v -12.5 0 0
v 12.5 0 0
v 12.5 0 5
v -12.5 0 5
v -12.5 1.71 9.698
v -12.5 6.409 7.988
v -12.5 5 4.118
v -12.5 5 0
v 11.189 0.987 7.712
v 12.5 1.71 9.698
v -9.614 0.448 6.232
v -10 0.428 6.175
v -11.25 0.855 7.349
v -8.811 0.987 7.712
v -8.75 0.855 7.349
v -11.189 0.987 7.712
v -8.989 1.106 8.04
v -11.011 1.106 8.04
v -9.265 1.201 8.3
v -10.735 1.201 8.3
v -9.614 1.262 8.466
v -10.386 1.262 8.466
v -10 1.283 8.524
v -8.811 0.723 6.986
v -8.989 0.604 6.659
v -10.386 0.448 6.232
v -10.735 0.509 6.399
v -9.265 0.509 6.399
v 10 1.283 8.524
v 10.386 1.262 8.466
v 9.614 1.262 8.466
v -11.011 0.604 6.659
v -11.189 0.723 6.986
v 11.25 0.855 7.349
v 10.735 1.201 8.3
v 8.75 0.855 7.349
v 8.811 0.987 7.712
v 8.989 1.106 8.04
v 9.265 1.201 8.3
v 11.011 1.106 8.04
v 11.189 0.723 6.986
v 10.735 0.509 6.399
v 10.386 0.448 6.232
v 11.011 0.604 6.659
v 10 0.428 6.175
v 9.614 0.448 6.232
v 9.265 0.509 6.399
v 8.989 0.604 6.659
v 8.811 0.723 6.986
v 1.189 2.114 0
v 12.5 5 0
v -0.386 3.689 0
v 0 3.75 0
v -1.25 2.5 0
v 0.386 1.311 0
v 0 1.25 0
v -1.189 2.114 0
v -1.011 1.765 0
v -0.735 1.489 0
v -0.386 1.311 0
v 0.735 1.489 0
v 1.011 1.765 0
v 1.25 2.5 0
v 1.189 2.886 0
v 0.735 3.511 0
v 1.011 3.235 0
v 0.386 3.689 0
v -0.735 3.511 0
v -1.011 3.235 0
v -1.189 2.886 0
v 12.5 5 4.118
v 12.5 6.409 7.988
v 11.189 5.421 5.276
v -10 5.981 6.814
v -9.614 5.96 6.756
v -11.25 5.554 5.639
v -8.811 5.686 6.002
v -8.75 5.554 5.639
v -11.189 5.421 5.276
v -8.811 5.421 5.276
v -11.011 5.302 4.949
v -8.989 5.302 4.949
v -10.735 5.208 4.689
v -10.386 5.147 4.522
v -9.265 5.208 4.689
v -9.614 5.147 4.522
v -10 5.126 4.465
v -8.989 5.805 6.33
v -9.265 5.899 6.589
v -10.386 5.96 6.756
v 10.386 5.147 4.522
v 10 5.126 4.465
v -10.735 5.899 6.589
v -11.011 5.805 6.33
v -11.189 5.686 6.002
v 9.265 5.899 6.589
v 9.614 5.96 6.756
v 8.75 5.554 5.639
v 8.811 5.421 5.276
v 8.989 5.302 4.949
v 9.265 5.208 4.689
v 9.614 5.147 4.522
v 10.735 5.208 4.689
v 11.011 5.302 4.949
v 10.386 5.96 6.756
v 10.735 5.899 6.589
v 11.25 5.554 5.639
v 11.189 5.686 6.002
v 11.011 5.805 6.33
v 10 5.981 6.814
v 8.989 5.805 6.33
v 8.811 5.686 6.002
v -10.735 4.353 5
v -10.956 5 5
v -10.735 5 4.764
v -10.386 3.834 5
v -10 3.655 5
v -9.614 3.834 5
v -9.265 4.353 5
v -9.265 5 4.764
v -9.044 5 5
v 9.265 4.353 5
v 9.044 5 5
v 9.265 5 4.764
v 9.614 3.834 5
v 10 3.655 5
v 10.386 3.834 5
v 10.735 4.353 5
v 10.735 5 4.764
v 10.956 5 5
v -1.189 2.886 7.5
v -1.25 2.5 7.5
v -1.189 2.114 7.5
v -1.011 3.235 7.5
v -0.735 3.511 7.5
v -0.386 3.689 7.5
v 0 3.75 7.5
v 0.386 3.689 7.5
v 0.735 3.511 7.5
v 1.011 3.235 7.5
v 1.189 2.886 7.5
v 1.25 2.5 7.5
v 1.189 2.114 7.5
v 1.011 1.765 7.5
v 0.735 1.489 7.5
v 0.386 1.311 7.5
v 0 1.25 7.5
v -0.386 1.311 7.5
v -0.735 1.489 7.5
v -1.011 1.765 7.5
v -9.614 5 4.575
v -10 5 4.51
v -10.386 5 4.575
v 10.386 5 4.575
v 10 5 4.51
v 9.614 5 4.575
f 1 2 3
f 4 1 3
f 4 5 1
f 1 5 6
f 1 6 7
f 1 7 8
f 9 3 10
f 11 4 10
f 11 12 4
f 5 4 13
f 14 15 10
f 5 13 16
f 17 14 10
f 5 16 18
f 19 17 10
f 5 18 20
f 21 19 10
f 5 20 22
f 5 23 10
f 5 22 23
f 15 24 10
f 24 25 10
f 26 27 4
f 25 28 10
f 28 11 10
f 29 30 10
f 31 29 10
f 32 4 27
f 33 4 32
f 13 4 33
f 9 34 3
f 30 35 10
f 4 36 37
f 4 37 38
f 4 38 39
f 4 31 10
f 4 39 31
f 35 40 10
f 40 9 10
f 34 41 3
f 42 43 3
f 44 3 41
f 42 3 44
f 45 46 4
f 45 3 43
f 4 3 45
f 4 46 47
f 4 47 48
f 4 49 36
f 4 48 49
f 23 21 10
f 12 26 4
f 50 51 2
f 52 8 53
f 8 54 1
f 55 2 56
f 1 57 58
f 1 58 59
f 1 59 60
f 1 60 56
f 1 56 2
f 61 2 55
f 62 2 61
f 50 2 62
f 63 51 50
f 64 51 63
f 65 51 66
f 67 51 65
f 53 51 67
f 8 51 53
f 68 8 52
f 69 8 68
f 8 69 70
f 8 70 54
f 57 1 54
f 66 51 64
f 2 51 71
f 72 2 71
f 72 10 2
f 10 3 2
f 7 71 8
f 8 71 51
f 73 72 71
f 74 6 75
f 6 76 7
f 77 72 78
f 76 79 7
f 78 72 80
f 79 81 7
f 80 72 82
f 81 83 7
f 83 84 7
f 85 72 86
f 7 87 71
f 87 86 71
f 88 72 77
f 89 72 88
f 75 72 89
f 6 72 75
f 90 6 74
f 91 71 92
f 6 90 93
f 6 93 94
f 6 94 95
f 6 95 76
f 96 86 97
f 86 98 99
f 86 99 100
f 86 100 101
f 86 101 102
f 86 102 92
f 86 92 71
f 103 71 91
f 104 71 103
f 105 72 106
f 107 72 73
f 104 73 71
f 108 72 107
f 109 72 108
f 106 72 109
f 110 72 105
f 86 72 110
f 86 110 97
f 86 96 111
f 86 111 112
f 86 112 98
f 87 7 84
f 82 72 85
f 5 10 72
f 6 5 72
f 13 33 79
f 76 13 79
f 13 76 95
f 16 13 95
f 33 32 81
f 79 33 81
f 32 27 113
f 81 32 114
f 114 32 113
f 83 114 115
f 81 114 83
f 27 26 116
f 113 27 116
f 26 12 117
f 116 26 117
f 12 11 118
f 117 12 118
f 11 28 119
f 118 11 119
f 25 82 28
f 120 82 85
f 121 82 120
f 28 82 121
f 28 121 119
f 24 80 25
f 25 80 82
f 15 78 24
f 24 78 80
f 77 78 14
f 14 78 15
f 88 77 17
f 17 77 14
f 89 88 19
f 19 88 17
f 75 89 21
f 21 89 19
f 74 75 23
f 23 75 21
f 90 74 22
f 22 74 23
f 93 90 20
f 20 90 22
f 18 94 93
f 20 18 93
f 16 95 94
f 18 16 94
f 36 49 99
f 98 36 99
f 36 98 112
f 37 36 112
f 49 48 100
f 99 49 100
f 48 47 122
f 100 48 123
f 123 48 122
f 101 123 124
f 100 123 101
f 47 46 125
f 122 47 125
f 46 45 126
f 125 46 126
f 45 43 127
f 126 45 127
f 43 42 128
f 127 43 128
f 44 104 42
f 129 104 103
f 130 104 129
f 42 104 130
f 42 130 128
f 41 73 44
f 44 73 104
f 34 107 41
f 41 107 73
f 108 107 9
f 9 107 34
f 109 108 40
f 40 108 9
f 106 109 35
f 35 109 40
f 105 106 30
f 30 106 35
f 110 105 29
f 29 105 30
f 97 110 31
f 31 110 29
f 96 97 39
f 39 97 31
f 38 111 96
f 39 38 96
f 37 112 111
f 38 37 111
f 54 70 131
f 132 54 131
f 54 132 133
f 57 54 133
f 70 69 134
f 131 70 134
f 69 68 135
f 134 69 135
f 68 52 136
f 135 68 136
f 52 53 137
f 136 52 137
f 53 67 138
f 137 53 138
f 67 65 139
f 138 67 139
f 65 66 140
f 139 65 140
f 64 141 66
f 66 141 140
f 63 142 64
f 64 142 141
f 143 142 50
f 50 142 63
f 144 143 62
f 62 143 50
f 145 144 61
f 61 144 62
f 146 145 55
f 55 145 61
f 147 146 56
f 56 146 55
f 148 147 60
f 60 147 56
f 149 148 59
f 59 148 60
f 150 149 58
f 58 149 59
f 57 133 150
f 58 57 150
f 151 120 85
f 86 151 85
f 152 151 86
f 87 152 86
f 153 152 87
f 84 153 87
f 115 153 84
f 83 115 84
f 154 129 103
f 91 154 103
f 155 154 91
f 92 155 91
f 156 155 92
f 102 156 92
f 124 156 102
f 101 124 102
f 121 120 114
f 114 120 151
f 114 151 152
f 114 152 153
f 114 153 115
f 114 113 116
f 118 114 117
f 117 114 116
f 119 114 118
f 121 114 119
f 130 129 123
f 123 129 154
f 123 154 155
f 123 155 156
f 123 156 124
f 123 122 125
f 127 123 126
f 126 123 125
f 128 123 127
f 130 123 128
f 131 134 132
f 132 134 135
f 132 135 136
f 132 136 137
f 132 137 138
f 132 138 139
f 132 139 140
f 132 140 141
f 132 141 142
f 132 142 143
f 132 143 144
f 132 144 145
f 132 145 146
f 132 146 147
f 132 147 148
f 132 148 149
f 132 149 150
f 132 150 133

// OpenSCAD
platform_hole = 2.5;
fan_hole = 2.5;
fan_hole_distance = 20;
fan_angle = 20;
fan_width = 25;
$fn=20;
fan_hole_radius = fan_hole / 2;

module fan_bar() {
	difference() {
		translate([-fan_width/2,0,-5])
			cube([fan_width, 5,5]);		
		rotate([90,0,0])
			for (i = [-fan_hole_distance/2,fan_hole_distance/2]){
				translate([i,-2.5,-4])
					cylinder(r=fan_hole_radius,h=10, center= true);			
				//translate([i, -2.5,-5])
					//cylinder(r=3,h=3, $fn=6);
				
			}
	}
}

module unit(){
	 difference() {
		union() {
			translate([-fan_width/2,0,0]) 
				cube([fan_width,5,5]);
			rotate([fan_angle,0,0])
				fan_bar();
		}
		translate([0,2.5,5.5])
			mirror([0,0,1]) cylinder(r=platform_hole/2, h=8);
		//translate([0,5,-3])
			//cylinder(r=5/2,h=5, $fn=6);
		
	}
}

//fan_bar();
mirror([0,0,1])translate([0,0,-5])unit();

// difference () {
	// union() {
		// translate([-fan_width/2,0,0]) {
			// cube([fan_width,10,5]);
			// rotate([10,0,0])translate([0,0,-10])
				// cube([fan_width,5,10]);
		// }
	// }
	// translate([0,5,0]) {
		// cylinder(r=plattform_hole/2, h=5);
		// cylinder(r=6.2/2, h=3, $fn=6);
	// }
// }
